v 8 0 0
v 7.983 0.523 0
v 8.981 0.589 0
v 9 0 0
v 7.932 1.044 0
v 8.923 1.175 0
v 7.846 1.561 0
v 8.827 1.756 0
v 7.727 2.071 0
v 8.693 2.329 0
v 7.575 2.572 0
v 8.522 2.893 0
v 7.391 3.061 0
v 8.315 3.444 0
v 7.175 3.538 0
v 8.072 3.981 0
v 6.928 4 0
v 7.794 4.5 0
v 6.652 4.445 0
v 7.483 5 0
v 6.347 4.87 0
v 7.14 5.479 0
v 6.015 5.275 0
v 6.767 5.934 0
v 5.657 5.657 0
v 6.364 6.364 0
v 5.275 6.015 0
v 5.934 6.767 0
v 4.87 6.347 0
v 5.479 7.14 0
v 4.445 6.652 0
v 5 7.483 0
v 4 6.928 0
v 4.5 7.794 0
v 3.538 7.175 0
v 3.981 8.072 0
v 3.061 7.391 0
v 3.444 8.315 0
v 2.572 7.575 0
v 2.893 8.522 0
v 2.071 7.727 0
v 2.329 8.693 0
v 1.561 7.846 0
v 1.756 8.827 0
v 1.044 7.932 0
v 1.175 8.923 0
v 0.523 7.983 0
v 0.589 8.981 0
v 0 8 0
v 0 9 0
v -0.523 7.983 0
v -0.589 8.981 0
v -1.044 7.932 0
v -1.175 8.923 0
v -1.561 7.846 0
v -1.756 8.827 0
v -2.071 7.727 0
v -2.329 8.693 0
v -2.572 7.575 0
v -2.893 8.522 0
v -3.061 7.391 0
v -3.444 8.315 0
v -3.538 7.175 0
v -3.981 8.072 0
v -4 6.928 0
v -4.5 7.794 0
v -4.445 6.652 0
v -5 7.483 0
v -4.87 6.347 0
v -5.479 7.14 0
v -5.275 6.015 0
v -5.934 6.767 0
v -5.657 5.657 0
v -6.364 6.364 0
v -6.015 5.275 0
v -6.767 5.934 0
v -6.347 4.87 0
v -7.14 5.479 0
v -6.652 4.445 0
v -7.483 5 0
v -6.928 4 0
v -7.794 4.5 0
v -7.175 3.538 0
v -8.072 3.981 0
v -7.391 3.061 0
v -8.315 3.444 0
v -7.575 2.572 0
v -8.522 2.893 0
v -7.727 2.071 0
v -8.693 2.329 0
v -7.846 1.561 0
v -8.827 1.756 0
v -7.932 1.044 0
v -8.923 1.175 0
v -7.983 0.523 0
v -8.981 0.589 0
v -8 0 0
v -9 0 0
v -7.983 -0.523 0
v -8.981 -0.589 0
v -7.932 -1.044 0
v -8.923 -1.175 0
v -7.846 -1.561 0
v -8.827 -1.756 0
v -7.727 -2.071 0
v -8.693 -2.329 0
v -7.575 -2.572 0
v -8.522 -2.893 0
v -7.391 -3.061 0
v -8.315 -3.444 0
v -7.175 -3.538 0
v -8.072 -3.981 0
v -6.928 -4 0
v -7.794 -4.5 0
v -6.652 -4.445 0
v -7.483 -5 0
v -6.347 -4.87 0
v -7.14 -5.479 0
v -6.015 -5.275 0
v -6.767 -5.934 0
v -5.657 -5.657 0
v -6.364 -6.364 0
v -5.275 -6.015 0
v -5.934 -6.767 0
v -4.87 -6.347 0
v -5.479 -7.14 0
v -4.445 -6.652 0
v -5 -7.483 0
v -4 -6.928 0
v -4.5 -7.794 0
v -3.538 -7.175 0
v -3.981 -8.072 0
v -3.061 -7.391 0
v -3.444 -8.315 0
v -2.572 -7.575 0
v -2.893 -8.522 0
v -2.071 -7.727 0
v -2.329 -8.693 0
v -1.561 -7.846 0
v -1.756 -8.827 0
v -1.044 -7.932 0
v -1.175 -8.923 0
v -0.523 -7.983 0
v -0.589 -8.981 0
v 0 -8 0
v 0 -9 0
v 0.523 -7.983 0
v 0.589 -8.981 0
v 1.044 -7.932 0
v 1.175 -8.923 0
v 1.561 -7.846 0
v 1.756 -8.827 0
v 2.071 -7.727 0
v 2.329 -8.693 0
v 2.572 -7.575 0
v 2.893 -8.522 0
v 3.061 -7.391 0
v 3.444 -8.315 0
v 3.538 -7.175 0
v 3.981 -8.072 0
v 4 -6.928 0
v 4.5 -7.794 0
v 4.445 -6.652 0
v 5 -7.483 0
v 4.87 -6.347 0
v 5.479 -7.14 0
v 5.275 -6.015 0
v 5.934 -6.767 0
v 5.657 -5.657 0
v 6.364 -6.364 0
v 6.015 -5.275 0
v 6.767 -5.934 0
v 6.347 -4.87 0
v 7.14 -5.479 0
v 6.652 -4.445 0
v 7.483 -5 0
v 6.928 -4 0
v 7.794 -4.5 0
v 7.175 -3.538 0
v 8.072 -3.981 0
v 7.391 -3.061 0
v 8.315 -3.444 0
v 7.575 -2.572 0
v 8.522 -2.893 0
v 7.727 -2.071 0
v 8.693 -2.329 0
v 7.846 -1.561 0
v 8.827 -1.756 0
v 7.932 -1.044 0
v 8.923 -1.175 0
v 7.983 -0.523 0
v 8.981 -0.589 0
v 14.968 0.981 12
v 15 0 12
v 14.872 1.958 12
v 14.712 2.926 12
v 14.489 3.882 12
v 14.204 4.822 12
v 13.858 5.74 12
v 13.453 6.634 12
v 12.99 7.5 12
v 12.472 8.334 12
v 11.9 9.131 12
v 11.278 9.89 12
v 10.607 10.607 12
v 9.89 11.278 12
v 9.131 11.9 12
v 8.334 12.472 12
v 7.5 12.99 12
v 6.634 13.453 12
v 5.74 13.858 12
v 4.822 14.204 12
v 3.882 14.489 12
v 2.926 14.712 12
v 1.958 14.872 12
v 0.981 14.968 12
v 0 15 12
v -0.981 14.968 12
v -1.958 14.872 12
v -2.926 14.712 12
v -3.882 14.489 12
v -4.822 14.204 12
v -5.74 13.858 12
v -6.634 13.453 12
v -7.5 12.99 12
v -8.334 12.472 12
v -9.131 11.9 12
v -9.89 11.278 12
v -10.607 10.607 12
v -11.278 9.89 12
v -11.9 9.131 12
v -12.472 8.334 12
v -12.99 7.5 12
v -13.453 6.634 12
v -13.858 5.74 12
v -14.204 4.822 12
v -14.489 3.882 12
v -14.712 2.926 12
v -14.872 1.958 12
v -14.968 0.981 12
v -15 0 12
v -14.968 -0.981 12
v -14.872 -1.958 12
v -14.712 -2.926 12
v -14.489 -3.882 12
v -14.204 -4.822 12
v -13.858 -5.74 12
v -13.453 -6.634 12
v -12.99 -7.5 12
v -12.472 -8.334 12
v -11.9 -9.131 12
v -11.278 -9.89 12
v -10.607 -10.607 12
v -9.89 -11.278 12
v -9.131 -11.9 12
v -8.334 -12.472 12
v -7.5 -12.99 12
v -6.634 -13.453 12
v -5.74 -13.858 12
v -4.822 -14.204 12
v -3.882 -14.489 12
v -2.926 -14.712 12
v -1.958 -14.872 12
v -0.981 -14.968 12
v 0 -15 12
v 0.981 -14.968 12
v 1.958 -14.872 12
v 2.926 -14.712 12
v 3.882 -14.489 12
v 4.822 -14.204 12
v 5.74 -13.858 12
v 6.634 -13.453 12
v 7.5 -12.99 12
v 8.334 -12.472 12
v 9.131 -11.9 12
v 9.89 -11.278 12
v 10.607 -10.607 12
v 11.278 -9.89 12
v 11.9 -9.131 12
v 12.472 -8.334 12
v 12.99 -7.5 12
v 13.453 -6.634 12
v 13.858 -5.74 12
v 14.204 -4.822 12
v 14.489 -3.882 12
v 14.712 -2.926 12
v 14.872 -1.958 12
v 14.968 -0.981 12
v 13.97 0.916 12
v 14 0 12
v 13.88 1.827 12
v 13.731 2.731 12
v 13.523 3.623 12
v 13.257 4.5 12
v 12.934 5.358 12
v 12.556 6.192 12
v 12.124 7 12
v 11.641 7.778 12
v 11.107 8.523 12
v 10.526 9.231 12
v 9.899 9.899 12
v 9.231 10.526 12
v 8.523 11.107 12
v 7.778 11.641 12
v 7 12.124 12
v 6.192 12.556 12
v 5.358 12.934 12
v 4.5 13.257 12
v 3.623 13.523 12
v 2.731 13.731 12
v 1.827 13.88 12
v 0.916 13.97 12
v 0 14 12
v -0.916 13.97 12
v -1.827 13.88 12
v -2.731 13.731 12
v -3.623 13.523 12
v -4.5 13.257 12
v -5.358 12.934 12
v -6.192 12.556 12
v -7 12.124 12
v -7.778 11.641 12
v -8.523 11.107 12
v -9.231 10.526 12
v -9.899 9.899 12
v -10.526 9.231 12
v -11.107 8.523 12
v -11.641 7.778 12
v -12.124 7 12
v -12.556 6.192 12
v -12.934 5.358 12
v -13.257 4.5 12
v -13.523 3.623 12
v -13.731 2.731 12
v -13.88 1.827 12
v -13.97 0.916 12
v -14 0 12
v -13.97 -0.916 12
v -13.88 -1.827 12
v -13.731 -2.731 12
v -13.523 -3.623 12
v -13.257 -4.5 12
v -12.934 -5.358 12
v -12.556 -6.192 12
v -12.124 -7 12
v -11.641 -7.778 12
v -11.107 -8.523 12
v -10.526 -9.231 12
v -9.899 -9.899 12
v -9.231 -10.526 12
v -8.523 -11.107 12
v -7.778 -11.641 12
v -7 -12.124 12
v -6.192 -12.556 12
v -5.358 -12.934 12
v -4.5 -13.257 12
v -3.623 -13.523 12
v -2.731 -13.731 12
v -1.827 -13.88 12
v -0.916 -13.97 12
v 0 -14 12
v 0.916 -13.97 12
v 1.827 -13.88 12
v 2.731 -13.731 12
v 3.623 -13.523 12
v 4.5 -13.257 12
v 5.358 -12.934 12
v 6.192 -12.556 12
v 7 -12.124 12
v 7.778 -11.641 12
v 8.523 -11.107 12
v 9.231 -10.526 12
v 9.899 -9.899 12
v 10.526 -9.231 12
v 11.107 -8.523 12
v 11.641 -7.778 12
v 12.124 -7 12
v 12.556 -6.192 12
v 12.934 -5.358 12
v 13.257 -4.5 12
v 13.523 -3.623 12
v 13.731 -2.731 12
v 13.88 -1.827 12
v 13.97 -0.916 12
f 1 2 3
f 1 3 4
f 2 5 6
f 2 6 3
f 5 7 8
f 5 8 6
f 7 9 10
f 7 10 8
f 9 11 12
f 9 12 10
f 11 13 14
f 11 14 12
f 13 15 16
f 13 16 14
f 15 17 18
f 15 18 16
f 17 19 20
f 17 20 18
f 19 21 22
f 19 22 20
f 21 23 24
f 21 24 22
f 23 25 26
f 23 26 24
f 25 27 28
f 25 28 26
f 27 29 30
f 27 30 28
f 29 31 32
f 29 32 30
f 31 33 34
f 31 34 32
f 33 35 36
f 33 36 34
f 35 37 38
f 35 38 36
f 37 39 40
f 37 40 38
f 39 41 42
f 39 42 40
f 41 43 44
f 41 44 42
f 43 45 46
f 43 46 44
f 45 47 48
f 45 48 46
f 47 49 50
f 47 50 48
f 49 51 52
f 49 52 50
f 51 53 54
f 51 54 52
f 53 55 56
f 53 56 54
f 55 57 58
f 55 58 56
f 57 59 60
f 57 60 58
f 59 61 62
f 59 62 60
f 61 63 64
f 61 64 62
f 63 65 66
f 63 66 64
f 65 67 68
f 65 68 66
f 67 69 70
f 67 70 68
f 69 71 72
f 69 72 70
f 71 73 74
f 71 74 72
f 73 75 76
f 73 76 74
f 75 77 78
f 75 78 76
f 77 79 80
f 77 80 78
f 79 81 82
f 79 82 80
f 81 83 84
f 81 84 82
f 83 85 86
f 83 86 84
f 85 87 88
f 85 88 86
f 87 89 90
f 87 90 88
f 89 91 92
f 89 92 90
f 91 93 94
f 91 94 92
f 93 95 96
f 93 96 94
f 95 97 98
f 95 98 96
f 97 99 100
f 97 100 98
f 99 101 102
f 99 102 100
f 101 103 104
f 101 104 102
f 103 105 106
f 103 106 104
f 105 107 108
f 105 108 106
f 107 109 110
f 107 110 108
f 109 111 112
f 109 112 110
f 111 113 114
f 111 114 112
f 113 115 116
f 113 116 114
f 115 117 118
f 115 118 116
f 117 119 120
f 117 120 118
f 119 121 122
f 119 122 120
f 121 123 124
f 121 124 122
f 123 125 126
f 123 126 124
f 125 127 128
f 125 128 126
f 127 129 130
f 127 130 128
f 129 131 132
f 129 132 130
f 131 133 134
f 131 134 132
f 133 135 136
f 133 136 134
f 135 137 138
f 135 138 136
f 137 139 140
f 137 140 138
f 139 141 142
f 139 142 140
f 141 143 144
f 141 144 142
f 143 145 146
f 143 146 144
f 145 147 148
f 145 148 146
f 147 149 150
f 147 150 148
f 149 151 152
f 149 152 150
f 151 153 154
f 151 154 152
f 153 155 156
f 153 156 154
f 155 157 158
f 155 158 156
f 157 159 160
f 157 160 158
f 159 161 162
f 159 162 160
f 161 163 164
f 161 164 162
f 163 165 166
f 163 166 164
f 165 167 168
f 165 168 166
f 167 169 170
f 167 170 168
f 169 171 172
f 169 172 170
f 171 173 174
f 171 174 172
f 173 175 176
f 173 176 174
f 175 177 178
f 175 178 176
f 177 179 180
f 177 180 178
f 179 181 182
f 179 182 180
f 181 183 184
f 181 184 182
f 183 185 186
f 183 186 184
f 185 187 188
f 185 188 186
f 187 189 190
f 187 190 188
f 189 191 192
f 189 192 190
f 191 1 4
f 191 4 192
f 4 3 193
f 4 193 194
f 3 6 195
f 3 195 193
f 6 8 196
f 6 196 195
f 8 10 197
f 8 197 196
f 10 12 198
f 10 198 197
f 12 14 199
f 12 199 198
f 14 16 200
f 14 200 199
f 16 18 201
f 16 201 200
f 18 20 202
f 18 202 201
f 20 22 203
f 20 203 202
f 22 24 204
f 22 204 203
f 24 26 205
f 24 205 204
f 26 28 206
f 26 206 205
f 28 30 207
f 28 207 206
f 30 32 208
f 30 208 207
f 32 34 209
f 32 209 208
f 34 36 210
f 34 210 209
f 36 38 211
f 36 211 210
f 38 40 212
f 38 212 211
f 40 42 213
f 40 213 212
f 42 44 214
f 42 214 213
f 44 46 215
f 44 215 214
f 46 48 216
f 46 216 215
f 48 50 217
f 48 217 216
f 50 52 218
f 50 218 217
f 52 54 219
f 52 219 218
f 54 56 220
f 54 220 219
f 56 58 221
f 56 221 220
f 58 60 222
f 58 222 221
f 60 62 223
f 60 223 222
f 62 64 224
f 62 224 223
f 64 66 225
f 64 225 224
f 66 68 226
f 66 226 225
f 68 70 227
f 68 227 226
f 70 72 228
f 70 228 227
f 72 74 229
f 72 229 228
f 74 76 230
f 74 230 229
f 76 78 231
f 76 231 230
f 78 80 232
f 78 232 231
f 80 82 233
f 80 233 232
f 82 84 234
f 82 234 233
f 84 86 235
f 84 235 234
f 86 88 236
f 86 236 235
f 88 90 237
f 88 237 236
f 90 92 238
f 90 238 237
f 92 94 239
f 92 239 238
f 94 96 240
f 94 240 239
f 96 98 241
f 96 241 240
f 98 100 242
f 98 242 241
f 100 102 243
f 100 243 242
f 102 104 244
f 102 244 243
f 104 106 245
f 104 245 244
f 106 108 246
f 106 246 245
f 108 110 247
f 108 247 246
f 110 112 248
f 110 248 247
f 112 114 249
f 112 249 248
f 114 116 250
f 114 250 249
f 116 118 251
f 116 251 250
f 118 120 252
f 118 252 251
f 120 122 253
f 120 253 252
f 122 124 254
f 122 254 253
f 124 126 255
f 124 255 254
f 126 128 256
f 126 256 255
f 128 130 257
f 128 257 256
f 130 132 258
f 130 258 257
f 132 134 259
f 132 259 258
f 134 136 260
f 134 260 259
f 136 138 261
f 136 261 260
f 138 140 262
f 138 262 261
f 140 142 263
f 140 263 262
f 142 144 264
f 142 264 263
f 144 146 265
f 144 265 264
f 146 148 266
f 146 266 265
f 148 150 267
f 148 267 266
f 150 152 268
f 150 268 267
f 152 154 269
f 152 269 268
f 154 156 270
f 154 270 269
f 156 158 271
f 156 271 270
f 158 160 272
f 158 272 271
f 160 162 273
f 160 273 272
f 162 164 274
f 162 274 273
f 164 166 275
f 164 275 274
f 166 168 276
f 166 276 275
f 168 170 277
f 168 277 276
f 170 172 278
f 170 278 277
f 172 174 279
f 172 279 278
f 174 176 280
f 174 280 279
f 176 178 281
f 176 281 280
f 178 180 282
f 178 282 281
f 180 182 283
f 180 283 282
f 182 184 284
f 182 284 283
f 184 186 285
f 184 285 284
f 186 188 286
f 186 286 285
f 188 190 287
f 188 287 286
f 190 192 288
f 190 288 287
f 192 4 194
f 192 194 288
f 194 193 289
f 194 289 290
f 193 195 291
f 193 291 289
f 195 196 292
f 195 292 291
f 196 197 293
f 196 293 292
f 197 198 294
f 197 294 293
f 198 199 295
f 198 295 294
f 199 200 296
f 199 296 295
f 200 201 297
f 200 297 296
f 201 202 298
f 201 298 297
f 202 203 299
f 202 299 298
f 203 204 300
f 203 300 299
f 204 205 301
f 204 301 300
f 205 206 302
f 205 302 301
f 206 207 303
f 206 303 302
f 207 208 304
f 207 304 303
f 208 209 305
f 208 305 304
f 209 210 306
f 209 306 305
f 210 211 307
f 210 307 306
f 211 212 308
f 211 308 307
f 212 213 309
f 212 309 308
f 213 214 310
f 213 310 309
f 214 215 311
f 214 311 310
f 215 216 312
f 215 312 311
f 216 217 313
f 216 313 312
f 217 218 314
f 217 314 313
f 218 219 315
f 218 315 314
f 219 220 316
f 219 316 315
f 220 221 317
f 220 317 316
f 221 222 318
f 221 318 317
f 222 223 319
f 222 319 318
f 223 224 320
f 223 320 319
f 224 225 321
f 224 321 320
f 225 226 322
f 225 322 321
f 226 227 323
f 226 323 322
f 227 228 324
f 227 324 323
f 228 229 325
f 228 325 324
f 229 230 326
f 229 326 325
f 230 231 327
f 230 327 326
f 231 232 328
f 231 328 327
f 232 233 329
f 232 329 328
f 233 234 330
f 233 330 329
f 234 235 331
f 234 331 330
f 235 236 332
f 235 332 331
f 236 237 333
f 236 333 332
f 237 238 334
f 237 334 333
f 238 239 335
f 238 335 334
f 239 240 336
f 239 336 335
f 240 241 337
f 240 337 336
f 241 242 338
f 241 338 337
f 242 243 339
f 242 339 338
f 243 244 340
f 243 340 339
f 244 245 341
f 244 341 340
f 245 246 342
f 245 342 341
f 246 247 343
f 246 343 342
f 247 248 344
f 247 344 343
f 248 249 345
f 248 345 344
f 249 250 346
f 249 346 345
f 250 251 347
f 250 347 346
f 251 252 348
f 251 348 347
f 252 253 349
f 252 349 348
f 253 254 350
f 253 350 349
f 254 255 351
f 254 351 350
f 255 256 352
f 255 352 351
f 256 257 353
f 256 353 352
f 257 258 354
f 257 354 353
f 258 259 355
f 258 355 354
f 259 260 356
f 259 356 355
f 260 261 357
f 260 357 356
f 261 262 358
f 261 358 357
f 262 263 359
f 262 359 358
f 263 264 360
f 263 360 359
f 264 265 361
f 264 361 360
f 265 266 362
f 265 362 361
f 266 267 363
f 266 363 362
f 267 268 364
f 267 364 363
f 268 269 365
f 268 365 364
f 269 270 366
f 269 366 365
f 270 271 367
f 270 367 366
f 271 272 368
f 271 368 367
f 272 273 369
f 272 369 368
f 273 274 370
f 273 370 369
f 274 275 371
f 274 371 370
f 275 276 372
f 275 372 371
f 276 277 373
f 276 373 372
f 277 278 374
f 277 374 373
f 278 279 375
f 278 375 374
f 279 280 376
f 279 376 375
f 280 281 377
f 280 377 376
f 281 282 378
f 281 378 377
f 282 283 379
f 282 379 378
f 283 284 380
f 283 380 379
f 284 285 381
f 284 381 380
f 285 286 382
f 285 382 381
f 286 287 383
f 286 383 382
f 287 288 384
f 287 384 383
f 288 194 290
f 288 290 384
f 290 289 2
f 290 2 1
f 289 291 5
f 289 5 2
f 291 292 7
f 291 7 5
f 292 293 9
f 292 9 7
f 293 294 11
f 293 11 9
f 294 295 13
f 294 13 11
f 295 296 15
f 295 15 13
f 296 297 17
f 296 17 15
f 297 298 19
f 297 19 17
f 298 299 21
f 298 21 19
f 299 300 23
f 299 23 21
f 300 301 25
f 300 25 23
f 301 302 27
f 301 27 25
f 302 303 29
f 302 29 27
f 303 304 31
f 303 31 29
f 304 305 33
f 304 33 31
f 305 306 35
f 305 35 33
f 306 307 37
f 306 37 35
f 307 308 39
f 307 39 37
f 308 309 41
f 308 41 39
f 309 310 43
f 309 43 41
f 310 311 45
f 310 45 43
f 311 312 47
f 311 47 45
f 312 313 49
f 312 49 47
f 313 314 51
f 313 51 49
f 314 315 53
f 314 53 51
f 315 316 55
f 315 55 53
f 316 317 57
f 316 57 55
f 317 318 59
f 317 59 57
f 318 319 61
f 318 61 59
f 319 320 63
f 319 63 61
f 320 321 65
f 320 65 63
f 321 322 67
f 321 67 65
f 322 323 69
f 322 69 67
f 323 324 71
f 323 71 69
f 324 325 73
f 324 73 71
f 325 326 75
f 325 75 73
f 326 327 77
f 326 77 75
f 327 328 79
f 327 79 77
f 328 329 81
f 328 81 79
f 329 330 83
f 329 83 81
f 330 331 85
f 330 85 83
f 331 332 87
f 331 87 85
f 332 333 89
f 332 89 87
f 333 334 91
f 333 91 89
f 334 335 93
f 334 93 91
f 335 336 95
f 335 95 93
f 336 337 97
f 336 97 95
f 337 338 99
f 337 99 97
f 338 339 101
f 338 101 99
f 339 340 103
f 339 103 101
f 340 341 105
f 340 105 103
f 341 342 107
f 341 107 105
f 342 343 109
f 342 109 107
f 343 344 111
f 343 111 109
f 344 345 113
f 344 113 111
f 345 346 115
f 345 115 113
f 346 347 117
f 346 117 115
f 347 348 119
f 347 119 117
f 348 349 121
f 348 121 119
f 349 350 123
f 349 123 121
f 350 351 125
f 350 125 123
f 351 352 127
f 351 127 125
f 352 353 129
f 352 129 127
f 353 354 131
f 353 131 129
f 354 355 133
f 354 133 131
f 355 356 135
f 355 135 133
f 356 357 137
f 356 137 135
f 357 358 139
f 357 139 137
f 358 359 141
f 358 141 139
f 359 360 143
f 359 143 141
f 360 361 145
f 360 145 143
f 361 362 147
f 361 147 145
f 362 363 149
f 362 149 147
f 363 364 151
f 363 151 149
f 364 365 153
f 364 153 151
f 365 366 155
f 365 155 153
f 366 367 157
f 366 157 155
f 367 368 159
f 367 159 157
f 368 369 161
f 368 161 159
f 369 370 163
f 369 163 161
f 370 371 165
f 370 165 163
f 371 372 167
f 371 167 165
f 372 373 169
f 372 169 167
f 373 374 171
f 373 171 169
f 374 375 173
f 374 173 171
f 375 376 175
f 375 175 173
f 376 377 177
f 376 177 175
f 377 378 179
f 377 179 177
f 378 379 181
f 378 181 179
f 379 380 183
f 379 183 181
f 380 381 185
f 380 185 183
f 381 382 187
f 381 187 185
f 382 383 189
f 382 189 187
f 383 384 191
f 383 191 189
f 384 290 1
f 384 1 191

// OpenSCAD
// Original MechIntel educational model. CC0-1.0. Units: mm.
// Not a standardized or load-rated component.
$fn=96;
// Section points: [radius, height], mm. Edit to change the profile.
section=[[8, 0], [9, 0], [15, 12], [14, 12]];
rotate_extrude($fn=96) polygon(points=section);
